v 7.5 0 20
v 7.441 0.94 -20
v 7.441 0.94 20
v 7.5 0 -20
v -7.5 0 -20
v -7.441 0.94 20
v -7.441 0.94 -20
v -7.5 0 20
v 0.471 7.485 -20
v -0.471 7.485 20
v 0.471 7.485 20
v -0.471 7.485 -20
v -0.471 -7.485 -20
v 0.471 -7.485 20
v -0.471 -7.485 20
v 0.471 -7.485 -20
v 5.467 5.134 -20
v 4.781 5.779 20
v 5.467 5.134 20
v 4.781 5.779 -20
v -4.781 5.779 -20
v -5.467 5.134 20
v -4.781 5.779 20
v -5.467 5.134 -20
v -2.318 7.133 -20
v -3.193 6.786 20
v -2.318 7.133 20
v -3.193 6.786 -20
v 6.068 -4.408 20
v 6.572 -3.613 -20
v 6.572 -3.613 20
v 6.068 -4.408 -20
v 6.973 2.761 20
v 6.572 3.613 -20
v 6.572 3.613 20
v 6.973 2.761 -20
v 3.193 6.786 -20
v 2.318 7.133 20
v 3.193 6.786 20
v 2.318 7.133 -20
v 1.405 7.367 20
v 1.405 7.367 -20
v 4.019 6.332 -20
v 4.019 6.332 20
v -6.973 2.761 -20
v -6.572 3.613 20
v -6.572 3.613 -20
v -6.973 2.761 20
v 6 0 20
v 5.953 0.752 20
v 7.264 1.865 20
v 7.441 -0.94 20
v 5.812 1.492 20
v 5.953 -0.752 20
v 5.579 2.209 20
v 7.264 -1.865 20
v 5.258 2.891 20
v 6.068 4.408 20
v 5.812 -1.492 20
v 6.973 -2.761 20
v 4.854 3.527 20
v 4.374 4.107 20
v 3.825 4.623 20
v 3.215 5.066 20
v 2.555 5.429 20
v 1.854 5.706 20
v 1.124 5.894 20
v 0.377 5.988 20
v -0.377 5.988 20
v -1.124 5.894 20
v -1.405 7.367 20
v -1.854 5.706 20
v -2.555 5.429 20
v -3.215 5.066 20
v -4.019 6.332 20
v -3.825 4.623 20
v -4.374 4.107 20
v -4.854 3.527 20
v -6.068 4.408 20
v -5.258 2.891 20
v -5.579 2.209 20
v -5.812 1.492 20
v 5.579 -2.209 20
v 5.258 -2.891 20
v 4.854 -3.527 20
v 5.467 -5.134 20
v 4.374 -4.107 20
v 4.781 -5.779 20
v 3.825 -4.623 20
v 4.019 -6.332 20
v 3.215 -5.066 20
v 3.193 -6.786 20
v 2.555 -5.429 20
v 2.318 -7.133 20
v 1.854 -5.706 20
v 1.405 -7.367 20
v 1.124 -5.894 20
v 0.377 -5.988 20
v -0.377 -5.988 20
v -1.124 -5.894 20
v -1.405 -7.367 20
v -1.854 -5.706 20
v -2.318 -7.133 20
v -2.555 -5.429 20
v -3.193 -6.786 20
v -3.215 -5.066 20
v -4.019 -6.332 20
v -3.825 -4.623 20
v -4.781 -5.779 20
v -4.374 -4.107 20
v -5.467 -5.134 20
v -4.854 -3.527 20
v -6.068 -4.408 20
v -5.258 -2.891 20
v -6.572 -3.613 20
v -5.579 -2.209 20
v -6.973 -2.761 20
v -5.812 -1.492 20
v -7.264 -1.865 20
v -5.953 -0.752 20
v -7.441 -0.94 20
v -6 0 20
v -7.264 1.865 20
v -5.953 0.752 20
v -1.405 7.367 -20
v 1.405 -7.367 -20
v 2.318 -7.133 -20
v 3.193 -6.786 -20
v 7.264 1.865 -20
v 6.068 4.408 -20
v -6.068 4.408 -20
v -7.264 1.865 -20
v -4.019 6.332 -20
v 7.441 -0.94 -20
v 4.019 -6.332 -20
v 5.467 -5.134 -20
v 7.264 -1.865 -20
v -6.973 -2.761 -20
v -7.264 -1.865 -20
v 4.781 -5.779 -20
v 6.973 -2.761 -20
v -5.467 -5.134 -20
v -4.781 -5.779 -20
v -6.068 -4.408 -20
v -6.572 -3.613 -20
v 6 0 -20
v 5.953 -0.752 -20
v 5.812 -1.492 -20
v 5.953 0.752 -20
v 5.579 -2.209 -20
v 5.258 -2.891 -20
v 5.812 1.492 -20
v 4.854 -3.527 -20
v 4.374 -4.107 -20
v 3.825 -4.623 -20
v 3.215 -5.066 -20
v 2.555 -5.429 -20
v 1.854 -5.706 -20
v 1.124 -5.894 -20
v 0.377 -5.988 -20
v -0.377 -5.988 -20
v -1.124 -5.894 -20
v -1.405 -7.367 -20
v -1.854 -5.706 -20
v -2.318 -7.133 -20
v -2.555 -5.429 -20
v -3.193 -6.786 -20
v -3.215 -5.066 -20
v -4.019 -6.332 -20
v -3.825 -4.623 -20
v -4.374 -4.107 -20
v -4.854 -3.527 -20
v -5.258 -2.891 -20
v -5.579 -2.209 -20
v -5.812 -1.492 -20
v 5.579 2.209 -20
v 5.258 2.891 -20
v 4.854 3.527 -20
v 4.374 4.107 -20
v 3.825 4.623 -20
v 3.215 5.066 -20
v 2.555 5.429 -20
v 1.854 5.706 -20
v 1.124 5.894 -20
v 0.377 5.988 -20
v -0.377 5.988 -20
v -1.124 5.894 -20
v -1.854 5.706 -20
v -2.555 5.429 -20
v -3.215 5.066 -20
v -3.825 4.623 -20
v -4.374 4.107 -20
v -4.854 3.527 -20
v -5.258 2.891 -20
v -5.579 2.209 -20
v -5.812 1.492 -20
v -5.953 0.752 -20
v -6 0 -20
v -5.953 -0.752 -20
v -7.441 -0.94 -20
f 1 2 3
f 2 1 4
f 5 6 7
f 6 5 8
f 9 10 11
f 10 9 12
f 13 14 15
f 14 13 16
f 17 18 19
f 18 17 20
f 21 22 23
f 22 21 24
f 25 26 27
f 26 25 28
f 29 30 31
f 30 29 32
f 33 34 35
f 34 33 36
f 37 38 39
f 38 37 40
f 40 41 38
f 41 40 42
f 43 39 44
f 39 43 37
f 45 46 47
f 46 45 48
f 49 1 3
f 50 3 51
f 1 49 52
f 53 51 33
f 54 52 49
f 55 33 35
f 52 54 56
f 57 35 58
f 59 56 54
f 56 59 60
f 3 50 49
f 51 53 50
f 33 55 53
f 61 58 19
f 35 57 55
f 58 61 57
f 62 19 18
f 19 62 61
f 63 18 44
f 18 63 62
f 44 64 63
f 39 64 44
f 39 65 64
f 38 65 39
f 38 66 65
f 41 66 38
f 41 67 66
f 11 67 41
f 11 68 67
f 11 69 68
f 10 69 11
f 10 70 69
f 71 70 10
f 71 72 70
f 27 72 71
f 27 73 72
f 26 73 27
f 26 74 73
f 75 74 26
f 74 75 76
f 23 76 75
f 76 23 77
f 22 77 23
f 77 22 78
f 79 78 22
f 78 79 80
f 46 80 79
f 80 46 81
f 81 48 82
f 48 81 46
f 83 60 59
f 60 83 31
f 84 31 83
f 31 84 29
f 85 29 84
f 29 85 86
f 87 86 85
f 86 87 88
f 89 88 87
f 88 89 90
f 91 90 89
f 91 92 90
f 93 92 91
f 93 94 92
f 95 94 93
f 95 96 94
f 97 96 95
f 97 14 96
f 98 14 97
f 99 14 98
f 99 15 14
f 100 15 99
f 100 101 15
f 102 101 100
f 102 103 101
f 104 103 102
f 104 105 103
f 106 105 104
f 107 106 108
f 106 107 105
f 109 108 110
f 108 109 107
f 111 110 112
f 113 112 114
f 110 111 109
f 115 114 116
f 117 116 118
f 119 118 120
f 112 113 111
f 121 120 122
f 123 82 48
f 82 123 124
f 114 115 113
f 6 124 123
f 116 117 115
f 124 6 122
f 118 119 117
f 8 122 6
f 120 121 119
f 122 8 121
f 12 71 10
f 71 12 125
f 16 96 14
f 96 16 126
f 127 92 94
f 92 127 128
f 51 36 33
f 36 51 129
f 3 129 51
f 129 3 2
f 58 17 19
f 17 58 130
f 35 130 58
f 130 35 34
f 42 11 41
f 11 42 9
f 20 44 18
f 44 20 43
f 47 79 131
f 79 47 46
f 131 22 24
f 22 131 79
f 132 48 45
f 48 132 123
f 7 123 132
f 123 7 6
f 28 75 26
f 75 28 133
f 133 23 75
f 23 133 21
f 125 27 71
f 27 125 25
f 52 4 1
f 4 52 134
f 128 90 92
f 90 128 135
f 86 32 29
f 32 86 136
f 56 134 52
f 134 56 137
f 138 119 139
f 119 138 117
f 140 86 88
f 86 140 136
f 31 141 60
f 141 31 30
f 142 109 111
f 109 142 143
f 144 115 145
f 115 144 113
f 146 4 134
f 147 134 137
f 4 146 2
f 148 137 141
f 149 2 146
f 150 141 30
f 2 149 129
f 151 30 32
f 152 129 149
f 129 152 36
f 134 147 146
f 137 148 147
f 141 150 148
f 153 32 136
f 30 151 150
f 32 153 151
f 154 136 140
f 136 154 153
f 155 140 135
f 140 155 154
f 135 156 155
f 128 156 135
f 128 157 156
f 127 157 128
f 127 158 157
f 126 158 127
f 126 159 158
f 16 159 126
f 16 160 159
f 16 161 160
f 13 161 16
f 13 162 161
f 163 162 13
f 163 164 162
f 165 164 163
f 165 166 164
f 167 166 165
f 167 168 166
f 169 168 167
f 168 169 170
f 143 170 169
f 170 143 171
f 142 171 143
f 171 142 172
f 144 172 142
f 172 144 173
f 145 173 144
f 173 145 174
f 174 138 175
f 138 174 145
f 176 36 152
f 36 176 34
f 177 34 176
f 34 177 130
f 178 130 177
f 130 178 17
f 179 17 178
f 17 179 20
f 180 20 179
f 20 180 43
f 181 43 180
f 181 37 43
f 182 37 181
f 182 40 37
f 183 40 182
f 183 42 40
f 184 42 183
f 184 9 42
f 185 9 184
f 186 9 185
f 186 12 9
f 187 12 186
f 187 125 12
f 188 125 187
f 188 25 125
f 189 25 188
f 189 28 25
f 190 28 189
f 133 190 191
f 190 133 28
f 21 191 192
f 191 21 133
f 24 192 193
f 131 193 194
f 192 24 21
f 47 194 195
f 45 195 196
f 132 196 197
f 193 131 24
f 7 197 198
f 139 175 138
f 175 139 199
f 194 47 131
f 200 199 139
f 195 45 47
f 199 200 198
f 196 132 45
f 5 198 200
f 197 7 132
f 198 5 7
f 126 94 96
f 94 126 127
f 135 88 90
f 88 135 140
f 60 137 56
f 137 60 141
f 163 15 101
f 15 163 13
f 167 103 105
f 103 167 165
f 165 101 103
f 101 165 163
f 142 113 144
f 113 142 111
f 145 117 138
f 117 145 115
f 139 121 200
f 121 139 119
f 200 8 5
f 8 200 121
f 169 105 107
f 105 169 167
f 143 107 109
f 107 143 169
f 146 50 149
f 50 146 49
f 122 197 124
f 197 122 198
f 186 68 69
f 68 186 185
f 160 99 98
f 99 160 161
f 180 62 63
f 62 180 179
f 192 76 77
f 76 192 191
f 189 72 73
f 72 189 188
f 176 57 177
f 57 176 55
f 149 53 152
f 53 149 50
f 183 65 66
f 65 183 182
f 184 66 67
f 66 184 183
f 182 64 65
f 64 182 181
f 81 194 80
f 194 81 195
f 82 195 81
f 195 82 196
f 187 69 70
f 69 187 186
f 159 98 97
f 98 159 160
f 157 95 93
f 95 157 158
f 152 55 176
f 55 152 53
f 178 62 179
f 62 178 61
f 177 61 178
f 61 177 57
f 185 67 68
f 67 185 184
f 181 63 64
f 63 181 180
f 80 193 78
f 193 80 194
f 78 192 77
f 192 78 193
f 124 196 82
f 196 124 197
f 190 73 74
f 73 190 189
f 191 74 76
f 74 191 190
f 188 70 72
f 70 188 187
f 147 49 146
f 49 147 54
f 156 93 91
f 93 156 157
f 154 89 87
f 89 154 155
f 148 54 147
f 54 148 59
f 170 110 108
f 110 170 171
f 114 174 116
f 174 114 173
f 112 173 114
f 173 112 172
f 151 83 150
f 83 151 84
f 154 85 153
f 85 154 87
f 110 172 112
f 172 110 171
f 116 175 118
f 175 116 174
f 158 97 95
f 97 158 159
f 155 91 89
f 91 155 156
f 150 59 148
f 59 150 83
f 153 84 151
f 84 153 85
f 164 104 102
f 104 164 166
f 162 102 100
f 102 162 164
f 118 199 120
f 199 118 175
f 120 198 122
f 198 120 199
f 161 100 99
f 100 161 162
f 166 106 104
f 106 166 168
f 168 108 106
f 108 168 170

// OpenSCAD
$fn = 50;


difference() {
	union() {
		translate(v = [0, 0, -20.0000000000]) {
			cylinder(h = 40, r = 7.5000000000);
		}
	}
	union() {
		translate(v = [0, 0, -100.0000000000]) {
			cylinder(h = 200, r = 6);
		}
	}
}
